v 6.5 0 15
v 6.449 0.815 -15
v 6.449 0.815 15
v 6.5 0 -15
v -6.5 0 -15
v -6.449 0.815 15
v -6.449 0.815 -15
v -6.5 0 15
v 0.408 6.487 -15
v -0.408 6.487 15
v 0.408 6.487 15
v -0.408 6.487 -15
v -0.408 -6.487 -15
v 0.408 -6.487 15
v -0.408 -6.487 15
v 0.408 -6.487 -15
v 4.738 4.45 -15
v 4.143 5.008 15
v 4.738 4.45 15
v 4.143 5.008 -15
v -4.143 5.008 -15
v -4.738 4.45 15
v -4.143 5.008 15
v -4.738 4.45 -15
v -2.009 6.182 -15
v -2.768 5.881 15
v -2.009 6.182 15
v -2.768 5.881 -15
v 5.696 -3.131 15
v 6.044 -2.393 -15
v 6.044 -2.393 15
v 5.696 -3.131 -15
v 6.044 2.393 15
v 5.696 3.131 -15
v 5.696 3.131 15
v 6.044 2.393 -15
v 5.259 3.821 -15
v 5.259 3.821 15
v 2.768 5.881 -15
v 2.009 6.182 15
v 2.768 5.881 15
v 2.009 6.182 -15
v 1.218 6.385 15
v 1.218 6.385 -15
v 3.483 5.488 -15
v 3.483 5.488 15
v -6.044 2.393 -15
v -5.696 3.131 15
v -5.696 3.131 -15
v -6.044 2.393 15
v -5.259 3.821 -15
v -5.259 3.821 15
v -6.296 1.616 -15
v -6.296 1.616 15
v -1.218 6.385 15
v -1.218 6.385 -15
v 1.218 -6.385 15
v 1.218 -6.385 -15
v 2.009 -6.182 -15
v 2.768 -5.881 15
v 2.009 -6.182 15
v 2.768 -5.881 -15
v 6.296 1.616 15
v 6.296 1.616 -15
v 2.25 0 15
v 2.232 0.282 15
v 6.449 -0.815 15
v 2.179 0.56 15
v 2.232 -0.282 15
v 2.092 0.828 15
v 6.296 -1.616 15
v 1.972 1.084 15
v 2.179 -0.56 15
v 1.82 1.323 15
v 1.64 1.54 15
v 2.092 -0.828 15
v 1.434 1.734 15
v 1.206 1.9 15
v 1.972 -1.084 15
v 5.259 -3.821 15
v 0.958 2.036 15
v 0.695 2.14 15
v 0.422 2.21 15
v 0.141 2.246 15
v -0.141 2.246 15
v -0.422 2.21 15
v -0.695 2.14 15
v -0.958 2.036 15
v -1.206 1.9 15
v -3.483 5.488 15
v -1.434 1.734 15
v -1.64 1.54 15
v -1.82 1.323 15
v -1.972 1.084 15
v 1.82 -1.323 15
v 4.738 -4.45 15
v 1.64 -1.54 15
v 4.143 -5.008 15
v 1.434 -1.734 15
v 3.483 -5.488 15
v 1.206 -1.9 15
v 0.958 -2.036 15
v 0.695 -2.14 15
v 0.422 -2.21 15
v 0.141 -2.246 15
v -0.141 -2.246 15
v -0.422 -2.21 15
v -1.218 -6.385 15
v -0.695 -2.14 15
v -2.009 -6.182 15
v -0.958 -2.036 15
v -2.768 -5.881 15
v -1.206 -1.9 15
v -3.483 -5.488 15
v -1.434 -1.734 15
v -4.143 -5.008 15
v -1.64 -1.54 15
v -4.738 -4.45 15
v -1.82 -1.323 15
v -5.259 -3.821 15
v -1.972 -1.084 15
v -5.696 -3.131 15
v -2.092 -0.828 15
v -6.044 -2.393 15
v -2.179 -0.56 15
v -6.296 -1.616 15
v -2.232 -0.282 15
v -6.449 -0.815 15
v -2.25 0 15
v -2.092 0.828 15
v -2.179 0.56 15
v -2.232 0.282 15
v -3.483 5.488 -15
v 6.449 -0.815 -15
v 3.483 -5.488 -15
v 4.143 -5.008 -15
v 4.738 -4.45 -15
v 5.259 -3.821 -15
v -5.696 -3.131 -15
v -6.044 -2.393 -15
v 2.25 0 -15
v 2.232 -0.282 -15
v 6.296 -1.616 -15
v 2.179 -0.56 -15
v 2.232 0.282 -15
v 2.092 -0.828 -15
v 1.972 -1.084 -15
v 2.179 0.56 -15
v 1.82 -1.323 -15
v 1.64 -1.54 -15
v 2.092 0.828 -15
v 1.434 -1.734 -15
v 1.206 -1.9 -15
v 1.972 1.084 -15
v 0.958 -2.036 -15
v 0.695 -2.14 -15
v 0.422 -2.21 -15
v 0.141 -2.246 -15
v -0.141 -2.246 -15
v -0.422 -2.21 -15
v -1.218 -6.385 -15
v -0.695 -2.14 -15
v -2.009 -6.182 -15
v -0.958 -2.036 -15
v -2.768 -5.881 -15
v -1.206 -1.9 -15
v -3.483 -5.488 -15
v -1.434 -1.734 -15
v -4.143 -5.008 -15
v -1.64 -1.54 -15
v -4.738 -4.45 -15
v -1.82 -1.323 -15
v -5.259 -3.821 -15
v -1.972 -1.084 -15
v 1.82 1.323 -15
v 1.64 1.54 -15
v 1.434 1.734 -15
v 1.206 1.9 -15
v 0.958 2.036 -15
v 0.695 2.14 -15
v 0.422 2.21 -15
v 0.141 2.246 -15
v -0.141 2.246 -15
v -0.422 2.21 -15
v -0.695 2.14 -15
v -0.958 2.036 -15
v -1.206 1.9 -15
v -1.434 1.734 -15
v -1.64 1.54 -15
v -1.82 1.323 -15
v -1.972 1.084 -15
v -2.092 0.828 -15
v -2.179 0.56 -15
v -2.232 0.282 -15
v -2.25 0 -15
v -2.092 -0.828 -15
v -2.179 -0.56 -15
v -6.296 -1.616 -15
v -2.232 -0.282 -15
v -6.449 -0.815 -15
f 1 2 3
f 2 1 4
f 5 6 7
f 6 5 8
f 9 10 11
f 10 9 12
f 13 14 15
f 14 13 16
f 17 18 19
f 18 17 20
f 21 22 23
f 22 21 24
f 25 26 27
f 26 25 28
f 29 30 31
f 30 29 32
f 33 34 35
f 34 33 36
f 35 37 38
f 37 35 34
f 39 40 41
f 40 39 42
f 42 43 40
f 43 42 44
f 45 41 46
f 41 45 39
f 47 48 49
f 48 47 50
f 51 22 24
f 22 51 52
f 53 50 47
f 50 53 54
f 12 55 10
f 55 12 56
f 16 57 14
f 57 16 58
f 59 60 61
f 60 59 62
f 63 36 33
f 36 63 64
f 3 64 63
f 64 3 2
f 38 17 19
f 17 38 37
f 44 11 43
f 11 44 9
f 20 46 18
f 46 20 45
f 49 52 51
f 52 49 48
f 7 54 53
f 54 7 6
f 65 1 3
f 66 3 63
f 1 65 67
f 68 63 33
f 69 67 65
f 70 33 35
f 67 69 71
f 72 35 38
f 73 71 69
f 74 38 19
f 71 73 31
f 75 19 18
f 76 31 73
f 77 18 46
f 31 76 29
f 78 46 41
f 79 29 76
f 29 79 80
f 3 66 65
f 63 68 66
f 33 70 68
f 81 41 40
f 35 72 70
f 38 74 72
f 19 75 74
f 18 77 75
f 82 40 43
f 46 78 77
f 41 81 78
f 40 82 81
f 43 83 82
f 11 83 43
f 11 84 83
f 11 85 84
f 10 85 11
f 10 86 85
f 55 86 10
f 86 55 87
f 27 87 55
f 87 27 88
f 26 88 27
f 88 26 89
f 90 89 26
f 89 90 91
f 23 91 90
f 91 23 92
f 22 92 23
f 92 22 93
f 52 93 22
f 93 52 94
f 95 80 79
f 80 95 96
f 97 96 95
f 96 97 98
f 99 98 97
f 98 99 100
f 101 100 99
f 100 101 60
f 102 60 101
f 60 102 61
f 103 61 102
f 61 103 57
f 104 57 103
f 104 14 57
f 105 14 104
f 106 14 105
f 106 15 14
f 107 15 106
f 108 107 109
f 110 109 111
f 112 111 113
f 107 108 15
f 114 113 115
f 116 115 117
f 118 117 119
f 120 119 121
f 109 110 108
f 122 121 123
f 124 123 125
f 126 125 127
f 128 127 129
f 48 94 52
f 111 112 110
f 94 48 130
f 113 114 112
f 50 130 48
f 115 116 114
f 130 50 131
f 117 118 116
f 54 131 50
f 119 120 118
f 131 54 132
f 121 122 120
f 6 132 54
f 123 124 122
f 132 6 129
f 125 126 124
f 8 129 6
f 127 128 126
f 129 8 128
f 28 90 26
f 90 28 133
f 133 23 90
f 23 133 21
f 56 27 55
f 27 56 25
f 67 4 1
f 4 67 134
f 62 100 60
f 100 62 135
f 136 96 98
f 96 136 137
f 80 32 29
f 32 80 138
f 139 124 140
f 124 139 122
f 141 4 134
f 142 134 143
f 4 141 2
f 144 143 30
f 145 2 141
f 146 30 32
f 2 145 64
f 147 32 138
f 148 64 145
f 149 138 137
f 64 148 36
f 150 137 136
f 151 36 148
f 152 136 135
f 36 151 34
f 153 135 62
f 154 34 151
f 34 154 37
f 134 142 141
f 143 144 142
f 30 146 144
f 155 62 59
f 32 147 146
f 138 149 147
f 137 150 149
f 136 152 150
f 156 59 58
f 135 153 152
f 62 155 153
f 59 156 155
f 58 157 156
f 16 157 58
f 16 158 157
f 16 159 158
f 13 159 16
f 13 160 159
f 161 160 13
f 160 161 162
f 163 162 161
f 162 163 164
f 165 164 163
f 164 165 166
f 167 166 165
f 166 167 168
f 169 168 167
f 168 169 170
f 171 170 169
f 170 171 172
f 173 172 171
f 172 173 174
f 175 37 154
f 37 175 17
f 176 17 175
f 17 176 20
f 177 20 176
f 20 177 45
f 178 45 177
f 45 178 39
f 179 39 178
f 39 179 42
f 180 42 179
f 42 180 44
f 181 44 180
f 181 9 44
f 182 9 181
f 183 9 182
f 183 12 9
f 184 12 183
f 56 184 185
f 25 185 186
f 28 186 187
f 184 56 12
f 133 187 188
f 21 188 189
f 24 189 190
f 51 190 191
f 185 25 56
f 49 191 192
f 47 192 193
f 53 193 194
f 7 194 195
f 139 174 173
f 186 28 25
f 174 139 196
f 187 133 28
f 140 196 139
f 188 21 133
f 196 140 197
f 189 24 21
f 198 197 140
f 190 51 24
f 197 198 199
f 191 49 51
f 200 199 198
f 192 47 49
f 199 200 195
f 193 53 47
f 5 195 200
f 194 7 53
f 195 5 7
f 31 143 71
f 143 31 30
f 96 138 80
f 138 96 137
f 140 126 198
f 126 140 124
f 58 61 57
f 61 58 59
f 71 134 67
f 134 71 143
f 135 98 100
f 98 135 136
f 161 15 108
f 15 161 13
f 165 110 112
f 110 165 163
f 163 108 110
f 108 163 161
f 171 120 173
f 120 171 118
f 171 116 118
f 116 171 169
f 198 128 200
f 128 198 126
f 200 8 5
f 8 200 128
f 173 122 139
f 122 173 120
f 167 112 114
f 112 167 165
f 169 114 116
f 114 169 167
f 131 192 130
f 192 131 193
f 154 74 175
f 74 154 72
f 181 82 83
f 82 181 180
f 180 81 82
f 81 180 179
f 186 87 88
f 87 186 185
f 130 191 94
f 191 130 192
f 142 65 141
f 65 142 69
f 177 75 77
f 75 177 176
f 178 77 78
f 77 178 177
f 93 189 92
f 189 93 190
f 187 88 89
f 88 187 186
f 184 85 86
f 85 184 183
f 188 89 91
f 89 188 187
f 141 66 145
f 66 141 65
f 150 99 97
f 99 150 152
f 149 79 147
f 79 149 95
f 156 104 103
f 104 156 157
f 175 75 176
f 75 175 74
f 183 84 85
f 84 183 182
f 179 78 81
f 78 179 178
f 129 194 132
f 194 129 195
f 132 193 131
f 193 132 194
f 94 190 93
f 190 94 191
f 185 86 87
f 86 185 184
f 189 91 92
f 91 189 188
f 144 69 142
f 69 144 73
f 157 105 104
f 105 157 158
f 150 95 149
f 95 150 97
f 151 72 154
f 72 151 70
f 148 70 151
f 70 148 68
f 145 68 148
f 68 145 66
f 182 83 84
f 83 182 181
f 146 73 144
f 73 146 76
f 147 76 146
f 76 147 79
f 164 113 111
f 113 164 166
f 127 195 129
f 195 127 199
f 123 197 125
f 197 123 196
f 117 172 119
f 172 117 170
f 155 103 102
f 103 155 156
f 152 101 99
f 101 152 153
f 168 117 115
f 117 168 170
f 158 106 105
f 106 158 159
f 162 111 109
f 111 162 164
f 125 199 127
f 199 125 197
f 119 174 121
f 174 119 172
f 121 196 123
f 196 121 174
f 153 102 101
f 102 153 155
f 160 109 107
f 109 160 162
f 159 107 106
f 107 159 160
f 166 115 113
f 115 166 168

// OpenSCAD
$fn = 50;


difference() {
	union() {
		translate(v = [0, 0, -15.0000000000]) {
			cylinder(h = 30, r = 6.5000000000);
		}
	}
	union() {
		translate(v = [0, 0, -100.0000000000]) {
			cylinder(h = 200, r = 2.2500000000);
		}
	}
}
